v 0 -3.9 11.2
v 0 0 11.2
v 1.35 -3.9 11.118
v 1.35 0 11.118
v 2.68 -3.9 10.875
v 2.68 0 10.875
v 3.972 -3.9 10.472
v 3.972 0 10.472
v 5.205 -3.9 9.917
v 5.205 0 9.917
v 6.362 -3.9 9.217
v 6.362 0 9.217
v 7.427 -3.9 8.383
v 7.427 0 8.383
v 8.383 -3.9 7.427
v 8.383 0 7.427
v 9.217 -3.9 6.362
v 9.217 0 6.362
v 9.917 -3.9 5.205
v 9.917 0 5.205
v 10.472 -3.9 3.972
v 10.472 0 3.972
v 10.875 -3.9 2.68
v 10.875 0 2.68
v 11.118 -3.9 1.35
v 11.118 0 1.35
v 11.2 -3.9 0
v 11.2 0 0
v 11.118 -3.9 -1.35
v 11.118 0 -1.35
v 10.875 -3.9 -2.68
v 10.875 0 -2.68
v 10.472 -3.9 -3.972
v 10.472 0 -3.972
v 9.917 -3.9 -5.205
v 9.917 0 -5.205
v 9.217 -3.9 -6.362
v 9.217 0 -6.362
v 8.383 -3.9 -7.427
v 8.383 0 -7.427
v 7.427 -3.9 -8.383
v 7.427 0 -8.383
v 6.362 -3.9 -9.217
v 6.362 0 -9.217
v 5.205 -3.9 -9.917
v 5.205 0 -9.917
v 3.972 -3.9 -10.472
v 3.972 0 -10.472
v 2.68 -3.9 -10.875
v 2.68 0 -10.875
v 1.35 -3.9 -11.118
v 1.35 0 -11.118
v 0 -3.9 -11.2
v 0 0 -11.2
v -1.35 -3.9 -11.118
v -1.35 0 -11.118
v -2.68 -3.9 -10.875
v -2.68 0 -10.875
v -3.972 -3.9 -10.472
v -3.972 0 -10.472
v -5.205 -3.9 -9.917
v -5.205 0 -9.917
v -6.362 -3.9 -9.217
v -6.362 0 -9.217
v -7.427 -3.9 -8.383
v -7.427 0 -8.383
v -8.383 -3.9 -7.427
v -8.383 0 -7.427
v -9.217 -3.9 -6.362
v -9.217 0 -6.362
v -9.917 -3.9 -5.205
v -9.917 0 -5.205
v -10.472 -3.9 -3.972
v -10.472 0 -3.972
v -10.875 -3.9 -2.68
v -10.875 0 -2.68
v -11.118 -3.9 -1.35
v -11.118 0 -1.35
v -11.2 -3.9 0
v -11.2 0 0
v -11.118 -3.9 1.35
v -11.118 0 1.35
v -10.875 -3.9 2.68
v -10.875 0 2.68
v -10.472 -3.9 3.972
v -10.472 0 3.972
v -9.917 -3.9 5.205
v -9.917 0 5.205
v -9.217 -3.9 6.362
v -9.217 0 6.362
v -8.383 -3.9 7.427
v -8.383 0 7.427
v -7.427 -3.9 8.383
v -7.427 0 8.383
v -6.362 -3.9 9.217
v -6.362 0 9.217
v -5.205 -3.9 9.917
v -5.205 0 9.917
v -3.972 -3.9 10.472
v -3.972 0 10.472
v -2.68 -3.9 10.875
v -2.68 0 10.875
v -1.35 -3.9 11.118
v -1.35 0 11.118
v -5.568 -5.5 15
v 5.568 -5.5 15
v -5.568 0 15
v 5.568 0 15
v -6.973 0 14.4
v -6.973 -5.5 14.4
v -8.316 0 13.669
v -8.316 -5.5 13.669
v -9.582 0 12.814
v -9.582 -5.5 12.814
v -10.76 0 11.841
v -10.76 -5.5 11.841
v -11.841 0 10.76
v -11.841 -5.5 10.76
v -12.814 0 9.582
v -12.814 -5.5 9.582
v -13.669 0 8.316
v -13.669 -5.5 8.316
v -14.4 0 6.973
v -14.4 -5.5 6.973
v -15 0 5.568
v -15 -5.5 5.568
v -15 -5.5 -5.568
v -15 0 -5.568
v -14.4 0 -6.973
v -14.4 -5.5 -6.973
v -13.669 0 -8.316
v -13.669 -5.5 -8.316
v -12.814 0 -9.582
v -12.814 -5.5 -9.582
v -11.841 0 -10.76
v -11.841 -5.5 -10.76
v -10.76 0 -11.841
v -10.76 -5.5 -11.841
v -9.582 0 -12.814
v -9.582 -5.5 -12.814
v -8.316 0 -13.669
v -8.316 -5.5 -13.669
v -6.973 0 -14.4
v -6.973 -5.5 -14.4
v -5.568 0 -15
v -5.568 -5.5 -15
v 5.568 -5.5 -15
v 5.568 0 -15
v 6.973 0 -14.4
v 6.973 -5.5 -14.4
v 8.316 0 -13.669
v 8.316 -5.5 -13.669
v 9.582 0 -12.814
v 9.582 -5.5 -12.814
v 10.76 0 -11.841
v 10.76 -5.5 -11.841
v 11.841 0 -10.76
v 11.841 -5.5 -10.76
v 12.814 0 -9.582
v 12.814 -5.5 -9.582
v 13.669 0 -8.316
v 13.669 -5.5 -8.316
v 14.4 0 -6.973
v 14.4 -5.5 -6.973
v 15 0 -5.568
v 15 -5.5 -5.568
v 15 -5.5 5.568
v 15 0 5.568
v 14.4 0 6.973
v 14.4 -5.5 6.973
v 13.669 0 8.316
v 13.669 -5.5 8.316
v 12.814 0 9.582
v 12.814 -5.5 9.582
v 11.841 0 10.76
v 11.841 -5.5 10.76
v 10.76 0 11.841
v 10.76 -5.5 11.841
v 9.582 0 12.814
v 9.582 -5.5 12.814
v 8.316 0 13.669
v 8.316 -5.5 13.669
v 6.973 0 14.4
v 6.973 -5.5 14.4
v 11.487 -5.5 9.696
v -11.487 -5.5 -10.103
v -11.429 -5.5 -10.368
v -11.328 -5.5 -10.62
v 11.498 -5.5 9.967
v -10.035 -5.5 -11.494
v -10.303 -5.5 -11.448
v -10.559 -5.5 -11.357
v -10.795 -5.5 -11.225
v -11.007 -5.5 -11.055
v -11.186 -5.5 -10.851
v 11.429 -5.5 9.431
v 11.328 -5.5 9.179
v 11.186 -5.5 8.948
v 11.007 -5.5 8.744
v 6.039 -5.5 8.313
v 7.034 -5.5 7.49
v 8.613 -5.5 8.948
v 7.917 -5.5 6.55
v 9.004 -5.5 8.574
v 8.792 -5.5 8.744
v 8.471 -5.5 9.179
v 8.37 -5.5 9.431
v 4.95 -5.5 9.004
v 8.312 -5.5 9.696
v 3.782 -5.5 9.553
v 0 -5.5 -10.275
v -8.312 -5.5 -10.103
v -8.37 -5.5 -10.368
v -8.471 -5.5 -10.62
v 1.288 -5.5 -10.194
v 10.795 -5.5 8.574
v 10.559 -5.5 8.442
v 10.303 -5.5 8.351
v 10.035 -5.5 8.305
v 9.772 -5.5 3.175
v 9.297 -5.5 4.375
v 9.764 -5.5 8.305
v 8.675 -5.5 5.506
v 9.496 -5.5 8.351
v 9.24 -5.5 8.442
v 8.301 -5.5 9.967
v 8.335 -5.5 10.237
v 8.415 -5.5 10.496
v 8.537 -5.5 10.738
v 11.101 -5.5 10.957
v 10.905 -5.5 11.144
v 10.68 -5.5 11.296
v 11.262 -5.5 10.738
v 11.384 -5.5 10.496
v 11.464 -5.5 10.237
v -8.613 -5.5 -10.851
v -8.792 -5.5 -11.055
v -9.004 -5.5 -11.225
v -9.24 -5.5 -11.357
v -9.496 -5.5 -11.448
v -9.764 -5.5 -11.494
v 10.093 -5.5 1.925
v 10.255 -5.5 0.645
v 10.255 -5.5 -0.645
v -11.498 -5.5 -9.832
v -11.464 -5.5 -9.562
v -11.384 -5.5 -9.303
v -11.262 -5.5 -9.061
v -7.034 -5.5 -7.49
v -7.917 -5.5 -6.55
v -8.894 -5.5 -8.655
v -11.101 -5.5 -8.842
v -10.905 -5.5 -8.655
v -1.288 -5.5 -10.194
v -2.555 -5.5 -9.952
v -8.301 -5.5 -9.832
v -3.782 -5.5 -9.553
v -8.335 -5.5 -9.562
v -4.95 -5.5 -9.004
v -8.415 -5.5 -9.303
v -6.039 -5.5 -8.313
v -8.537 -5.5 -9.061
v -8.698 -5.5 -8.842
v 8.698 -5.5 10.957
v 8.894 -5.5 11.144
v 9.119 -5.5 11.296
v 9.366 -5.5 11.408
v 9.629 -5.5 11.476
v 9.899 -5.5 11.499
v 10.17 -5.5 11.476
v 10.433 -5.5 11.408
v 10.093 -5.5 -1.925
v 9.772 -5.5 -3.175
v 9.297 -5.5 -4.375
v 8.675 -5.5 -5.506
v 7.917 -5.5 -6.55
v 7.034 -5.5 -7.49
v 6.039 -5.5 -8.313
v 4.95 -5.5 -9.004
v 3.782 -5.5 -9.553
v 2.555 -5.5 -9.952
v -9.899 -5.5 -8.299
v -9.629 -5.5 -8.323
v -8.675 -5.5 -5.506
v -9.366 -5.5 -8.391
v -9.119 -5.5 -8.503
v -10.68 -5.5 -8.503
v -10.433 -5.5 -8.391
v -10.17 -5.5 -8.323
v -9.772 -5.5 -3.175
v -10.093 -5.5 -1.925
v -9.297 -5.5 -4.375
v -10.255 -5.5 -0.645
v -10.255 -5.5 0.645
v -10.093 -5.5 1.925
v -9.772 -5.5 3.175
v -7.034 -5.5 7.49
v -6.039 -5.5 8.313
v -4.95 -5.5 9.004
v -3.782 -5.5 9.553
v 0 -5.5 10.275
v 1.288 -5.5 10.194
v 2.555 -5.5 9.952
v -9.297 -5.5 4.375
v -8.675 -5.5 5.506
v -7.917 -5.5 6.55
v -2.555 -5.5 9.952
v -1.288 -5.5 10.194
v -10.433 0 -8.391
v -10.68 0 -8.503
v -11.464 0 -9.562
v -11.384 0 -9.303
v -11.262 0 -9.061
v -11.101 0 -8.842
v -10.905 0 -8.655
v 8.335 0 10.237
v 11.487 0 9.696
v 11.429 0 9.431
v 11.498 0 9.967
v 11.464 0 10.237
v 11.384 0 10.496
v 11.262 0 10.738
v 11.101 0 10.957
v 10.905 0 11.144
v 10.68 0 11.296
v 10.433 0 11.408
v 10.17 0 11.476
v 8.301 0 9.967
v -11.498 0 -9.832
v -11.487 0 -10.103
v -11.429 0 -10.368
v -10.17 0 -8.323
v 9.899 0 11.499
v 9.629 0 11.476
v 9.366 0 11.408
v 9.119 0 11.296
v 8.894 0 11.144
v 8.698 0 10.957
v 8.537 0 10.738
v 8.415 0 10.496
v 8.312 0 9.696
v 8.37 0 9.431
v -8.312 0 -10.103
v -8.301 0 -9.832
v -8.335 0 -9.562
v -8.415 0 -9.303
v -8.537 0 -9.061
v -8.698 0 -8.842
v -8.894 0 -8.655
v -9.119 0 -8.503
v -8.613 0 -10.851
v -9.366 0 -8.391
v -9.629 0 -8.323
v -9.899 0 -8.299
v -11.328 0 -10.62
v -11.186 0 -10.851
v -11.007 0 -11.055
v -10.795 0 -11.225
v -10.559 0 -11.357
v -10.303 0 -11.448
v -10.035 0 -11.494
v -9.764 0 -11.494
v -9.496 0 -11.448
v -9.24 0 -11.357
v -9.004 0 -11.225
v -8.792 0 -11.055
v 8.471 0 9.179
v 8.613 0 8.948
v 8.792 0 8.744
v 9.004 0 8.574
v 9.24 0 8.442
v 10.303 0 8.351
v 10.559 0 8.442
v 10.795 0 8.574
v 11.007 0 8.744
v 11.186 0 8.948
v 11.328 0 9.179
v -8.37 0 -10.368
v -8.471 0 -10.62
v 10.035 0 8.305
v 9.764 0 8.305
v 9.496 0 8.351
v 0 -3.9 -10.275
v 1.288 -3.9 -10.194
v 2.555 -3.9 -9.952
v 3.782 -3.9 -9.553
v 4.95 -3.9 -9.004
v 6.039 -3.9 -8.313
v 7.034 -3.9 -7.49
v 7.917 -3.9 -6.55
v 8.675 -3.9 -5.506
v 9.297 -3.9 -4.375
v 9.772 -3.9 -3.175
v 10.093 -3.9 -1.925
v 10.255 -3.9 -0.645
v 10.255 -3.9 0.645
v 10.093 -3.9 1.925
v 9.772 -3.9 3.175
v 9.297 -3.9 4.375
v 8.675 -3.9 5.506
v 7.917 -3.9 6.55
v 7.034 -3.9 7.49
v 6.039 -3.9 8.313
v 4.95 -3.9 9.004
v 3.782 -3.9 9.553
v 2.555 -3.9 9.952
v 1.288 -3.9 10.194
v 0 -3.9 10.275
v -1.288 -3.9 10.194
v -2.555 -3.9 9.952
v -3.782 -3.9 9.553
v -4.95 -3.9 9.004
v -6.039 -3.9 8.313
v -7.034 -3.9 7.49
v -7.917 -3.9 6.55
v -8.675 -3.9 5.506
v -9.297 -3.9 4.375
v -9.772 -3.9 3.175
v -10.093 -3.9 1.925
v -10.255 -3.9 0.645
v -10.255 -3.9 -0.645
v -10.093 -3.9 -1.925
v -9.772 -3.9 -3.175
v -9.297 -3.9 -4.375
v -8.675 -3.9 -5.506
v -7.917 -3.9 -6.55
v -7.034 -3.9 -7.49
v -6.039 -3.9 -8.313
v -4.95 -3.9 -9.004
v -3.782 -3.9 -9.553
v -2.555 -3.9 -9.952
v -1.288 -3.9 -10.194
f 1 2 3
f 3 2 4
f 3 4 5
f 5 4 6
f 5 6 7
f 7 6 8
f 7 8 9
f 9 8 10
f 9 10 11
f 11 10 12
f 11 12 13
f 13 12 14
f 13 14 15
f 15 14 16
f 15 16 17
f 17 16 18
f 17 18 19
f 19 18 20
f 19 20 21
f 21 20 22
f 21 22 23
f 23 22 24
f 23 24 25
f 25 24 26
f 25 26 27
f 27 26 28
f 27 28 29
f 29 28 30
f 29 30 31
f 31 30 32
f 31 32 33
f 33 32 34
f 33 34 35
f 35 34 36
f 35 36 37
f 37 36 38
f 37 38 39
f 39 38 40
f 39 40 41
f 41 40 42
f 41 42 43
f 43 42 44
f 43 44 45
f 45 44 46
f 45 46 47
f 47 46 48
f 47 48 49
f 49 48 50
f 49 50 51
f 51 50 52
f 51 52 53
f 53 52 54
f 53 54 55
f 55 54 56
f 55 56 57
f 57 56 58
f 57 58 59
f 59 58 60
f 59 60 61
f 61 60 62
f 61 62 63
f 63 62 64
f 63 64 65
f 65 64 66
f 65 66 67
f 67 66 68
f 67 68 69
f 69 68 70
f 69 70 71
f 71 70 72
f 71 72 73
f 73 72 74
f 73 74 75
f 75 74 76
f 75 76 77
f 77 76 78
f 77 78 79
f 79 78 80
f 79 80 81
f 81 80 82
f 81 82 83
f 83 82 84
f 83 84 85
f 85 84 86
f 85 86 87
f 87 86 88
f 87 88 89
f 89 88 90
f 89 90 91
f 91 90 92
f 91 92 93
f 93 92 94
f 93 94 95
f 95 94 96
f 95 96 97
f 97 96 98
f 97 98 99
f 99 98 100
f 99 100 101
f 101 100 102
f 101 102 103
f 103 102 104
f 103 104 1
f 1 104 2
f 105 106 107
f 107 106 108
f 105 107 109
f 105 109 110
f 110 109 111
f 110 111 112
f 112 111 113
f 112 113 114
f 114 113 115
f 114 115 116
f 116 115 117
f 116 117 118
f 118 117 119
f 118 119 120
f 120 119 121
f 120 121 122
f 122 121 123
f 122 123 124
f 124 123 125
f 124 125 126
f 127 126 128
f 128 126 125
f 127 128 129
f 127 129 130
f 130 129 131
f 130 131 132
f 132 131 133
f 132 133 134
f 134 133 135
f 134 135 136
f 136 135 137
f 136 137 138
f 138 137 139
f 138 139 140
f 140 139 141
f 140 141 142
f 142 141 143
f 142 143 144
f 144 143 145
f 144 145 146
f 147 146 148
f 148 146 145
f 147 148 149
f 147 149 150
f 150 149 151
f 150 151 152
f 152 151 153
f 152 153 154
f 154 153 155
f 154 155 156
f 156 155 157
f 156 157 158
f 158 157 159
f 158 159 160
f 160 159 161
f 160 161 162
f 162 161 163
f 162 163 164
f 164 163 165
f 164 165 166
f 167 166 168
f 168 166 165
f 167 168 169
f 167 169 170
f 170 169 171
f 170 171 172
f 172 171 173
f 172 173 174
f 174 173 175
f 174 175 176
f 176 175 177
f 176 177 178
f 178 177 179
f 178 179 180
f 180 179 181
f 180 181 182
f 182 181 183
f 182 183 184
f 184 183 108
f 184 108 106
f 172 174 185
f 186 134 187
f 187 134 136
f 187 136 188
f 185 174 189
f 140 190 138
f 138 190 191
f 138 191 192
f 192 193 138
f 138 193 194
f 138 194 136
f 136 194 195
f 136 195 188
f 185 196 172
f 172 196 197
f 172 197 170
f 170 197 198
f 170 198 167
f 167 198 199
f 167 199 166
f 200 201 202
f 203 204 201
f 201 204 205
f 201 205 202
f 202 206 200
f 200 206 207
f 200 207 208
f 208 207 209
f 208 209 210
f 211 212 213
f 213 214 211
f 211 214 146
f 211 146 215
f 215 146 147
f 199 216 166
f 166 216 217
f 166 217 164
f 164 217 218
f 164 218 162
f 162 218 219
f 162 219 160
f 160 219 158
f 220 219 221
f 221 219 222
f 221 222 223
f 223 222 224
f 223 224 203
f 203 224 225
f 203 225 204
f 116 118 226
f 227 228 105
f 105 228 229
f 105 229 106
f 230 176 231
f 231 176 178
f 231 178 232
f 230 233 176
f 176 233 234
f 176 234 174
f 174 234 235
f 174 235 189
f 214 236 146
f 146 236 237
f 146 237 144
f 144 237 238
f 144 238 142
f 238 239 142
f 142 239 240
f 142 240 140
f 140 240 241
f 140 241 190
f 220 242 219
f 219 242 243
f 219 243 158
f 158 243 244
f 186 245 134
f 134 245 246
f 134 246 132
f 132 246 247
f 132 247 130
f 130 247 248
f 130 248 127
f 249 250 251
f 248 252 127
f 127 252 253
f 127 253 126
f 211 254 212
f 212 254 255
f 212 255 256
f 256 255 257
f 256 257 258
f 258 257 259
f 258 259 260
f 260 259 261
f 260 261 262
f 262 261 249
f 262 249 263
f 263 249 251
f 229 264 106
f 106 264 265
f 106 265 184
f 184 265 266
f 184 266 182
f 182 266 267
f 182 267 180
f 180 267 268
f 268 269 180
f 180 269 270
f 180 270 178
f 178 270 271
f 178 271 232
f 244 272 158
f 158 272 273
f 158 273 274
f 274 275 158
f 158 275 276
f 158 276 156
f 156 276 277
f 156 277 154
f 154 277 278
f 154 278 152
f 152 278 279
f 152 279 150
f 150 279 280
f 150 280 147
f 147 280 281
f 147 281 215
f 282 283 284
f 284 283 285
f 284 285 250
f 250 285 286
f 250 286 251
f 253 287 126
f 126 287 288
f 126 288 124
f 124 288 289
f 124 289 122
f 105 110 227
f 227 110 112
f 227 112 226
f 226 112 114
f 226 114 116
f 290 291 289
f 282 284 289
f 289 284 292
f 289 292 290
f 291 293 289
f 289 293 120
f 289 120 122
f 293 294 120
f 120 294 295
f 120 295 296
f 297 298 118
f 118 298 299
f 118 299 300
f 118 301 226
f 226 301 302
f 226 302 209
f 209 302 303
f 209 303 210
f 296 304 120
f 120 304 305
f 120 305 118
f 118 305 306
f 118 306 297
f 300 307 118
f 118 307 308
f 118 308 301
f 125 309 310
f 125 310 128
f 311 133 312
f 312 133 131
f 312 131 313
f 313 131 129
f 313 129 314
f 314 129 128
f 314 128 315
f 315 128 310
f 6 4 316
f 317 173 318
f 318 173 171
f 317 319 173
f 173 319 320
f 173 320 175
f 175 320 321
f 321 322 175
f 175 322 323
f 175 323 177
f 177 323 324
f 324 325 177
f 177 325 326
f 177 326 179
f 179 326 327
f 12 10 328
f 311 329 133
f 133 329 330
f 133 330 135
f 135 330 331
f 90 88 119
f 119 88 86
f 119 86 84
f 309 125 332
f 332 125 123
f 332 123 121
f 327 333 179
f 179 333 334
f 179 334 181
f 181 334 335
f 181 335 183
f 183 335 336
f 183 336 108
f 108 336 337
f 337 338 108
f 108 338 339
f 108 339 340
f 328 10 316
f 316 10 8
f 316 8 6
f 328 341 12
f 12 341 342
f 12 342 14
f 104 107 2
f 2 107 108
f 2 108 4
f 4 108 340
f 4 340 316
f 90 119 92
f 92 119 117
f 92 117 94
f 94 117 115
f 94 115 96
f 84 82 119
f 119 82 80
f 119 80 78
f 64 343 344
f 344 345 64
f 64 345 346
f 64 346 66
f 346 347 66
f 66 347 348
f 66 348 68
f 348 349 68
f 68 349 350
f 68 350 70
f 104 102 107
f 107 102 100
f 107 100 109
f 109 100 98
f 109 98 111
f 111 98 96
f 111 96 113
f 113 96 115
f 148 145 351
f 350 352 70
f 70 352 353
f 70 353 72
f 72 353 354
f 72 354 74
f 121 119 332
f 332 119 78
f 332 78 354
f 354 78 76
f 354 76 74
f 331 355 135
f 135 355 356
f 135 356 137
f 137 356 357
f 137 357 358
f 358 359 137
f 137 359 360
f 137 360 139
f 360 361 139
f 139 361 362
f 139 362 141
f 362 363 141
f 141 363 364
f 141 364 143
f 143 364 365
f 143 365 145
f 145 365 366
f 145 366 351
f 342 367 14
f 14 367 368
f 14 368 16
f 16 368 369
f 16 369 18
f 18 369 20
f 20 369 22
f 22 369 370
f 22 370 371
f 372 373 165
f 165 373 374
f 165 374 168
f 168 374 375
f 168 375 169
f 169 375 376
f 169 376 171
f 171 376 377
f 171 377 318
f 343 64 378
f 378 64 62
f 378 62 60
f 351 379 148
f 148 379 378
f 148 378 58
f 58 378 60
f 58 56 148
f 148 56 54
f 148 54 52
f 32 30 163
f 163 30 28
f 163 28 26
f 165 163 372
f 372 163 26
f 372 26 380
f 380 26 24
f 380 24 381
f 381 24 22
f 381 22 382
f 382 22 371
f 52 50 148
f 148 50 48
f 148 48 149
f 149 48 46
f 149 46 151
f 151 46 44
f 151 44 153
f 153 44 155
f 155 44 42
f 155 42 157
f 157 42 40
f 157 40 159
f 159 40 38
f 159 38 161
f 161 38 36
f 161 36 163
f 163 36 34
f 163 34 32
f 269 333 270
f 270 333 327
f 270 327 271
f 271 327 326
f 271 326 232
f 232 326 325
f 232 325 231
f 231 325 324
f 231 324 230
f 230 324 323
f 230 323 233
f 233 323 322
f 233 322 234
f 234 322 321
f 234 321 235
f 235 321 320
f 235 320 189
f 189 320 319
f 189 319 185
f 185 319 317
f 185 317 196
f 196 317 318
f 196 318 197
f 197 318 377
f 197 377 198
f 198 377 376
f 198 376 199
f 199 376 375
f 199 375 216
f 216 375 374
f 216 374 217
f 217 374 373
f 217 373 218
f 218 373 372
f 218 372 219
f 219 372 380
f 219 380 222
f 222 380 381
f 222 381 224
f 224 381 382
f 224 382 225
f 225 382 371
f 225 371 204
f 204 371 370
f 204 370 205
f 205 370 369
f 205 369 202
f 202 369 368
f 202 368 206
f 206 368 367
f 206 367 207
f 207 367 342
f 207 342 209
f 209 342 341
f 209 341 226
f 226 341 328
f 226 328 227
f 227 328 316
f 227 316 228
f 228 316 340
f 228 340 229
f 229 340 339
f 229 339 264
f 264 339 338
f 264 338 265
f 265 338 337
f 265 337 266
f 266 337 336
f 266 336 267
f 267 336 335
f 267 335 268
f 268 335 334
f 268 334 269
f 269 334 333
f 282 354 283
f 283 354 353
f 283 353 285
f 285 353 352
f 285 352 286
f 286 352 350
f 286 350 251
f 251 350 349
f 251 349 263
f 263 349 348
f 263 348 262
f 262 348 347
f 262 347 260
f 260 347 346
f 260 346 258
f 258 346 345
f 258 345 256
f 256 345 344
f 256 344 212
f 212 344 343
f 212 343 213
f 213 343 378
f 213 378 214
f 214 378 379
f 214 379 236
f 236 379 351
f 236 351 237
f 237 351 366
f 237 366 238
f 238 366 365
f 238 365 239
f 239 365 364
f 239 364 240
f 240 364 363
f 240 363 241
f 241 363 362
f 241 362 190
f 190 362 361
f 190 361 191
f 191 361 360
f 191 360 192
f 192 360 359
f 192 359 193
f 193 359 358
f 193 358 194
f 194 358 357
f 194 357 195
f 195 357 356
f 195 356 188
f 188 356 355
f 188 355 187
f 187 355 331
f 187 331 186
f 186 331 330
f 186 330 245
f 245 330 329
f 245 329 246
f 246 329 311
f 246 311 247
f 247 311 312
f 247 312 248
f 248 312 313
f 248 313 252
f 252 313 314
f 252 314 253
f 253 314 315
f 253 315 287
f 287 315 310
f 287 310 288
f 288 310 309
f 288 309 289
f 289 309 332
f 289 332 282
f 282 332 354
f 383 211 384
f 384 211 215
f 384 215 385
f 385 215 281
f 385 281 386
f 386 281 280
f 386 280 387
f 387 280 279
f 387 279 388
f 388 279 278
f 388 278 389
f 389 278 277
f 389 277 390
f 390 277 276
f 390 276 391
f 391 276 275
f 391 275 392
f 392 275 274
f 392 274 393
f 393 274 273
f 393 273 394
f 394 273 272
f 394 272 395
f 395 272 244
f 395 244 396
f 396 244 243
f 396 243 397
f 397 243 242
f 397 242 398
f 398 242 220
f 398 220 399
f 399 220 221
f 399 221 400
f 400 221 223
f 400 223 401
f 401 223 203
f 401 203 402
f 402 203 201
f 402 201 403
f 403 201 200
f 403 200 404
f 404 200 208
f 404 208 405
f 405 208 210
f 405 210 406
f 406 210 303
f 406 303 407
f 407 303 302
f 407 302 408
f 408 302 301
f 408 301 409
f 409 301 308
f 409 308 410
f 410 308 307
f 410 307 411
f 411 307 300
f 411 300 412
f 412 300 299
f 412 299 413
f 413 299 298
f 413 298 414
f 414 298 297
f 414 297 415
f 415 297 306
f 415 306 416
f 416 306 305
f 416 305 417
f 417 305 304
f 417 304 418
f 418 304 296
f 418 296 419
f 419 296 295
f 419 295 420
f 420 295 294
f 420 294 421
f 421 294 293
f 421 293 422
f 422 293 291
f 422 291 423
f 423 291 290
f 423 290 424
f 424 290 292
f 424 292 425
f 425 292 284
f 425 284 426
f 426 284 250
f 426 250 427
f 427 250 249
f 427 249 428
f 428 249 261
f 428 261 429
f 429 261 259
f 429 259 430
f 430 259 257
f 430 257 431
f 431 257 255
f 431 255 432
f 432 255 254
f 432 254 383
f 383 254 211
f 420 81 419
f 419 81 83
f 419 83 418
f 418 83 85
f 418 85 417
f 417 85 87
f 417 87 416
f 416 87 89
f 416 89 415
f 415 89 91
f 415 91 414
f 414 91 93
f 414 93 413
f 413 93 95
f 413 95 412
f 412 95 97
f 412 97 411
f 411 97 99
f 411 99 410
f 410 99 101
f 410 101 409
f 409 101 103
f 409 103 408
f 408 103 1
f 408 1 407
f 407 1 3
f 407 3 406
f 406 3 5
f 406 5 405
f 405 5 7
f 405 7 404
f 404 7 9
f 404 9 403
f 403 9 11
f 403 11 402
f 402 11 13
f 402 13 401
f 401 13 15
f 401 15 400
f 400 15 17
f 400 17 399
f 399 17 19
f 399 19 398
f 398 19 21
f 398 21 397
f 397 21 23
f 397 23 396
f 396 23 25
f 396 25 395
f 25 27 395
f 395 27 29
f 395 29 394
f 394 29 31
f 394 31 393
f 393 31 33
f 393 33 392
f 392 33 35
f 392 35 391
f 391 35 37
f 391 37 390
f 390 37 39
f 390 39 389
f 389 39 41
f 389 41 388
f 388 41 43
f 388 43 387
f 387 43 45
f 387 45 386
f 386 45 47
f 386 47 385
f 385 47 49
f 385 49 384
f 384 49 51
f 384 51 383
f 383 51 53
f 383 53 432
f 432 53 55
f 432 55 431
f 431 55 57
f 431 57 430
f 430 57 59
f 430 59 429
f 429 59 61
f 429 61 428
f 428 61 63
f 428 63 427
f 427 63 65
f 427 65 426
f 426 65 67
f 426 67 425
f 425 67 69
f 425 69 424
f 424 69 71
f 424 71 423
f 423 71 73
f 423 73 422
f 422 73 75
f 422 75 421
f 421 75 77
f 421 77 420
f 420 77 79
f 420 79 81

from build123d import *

# Parameters (mm, degrees)
BOSS_EXTRUDE1_DEPTH = 5.5
SKETCH2_R           = 11.2
CUT_EXTRUDE1_DEPTH  = 22.914607001
SKETCH3_R           = 1.6
CUT_EXTRUDE2_DEPTH  = 22.914607001
BOSS_EXTRUDE2_START = -1.6
SKETCH4_R           = 11.2
SKETCH4_R_2         = 10.275
BOSS_EXTRUDE2_DEPTH = 1.6


with BuildPart() as part:
    # Sketch1 → Boss-Extrude1 (new body)
    with BuildSketch(Plane(origin=(0, 0, 0), x_dir=(1, 0, 0), z_dir=(0, 1, 0))):
        with BuildLine():
            ThreePointArc((15, 5.567764363), (11.313708499, 11.313708499), (5.567764363, 15))
            Line((5.567764363, 15), (-5.567764363, 15))
            ThreePointArc((-5.567764363, 15), (-11.313708499, 11.313708499), (-15, 5.567764363))
            Line((-15, 5.567764363), (-15, -5.567764363))
            ThreePointArc((-15, -5.567764363), (-11.313708499, -11.313708499), (-5.567764363, -15))
            Line((-5.567764363, -15), (5.567764363, -15))
            ThreePointArc((5.567764363, -15), (11.313708499, -11.313708499), (15, -5.567764363))
            Line((15, -5.567764363), (15, 5.567764363))
        make_face()
    extrude(amount=-BOSS_EXTRUDE1_DEPTH)

    # Sketch2 → Cut-Extrude1 (cut, through all)
    with BuildSketch(Plane(origin=(0, 0, 0), x_dir=(1, 0, 0), z_dir=(0, 1, 0))):
        with Locations(Location((0, 0, 0), (0, 0, 270))):
            Circle(SKETCH2_R)
    extrude(amount=-CUT_EXTRUDE1_DEPTH, mode=Mode.SUBTRACT)

    # Sketch3 → Cut-Extrude2 (cut, through all)
    with BuildSketch(Plane(origin=(0, 0, 0), x_dir=(1, 0, 0), z_dir=(0, 1, 0))):
        with Locations(Location((-9.899494937, 9.899494937, 0), (0, 0, 270))):
            Circle(SKETCH3_R)
        with Locations(Location((9.899494937, -9.899494937, 0), (0, 0, 270))):
            Circle(SKETCH3_R)
    extrude(amount=-CUT_EXTRUDE2_DEPTH, mode=Mode.SUBTRACT)

    # Sketch4 → Boss-Extrude2 (add)
    with BuildSketch(Plane.XZ.offset(5.5).offset(BOSS_EXTRUDE2_START)):
        with Locations(Location((0, 0, 0), (0, 0, 90))):
            Circle(SKETCH4_R)
        with Locations(Location((0, 0, 0), (0, 0, 270))):
            Circle(SKETCH4_R_2, mode=Mode.SUBTRACT)
    extrude(amount=BOSS_EXTRUDE2_DEPTH)


solid = part.part
